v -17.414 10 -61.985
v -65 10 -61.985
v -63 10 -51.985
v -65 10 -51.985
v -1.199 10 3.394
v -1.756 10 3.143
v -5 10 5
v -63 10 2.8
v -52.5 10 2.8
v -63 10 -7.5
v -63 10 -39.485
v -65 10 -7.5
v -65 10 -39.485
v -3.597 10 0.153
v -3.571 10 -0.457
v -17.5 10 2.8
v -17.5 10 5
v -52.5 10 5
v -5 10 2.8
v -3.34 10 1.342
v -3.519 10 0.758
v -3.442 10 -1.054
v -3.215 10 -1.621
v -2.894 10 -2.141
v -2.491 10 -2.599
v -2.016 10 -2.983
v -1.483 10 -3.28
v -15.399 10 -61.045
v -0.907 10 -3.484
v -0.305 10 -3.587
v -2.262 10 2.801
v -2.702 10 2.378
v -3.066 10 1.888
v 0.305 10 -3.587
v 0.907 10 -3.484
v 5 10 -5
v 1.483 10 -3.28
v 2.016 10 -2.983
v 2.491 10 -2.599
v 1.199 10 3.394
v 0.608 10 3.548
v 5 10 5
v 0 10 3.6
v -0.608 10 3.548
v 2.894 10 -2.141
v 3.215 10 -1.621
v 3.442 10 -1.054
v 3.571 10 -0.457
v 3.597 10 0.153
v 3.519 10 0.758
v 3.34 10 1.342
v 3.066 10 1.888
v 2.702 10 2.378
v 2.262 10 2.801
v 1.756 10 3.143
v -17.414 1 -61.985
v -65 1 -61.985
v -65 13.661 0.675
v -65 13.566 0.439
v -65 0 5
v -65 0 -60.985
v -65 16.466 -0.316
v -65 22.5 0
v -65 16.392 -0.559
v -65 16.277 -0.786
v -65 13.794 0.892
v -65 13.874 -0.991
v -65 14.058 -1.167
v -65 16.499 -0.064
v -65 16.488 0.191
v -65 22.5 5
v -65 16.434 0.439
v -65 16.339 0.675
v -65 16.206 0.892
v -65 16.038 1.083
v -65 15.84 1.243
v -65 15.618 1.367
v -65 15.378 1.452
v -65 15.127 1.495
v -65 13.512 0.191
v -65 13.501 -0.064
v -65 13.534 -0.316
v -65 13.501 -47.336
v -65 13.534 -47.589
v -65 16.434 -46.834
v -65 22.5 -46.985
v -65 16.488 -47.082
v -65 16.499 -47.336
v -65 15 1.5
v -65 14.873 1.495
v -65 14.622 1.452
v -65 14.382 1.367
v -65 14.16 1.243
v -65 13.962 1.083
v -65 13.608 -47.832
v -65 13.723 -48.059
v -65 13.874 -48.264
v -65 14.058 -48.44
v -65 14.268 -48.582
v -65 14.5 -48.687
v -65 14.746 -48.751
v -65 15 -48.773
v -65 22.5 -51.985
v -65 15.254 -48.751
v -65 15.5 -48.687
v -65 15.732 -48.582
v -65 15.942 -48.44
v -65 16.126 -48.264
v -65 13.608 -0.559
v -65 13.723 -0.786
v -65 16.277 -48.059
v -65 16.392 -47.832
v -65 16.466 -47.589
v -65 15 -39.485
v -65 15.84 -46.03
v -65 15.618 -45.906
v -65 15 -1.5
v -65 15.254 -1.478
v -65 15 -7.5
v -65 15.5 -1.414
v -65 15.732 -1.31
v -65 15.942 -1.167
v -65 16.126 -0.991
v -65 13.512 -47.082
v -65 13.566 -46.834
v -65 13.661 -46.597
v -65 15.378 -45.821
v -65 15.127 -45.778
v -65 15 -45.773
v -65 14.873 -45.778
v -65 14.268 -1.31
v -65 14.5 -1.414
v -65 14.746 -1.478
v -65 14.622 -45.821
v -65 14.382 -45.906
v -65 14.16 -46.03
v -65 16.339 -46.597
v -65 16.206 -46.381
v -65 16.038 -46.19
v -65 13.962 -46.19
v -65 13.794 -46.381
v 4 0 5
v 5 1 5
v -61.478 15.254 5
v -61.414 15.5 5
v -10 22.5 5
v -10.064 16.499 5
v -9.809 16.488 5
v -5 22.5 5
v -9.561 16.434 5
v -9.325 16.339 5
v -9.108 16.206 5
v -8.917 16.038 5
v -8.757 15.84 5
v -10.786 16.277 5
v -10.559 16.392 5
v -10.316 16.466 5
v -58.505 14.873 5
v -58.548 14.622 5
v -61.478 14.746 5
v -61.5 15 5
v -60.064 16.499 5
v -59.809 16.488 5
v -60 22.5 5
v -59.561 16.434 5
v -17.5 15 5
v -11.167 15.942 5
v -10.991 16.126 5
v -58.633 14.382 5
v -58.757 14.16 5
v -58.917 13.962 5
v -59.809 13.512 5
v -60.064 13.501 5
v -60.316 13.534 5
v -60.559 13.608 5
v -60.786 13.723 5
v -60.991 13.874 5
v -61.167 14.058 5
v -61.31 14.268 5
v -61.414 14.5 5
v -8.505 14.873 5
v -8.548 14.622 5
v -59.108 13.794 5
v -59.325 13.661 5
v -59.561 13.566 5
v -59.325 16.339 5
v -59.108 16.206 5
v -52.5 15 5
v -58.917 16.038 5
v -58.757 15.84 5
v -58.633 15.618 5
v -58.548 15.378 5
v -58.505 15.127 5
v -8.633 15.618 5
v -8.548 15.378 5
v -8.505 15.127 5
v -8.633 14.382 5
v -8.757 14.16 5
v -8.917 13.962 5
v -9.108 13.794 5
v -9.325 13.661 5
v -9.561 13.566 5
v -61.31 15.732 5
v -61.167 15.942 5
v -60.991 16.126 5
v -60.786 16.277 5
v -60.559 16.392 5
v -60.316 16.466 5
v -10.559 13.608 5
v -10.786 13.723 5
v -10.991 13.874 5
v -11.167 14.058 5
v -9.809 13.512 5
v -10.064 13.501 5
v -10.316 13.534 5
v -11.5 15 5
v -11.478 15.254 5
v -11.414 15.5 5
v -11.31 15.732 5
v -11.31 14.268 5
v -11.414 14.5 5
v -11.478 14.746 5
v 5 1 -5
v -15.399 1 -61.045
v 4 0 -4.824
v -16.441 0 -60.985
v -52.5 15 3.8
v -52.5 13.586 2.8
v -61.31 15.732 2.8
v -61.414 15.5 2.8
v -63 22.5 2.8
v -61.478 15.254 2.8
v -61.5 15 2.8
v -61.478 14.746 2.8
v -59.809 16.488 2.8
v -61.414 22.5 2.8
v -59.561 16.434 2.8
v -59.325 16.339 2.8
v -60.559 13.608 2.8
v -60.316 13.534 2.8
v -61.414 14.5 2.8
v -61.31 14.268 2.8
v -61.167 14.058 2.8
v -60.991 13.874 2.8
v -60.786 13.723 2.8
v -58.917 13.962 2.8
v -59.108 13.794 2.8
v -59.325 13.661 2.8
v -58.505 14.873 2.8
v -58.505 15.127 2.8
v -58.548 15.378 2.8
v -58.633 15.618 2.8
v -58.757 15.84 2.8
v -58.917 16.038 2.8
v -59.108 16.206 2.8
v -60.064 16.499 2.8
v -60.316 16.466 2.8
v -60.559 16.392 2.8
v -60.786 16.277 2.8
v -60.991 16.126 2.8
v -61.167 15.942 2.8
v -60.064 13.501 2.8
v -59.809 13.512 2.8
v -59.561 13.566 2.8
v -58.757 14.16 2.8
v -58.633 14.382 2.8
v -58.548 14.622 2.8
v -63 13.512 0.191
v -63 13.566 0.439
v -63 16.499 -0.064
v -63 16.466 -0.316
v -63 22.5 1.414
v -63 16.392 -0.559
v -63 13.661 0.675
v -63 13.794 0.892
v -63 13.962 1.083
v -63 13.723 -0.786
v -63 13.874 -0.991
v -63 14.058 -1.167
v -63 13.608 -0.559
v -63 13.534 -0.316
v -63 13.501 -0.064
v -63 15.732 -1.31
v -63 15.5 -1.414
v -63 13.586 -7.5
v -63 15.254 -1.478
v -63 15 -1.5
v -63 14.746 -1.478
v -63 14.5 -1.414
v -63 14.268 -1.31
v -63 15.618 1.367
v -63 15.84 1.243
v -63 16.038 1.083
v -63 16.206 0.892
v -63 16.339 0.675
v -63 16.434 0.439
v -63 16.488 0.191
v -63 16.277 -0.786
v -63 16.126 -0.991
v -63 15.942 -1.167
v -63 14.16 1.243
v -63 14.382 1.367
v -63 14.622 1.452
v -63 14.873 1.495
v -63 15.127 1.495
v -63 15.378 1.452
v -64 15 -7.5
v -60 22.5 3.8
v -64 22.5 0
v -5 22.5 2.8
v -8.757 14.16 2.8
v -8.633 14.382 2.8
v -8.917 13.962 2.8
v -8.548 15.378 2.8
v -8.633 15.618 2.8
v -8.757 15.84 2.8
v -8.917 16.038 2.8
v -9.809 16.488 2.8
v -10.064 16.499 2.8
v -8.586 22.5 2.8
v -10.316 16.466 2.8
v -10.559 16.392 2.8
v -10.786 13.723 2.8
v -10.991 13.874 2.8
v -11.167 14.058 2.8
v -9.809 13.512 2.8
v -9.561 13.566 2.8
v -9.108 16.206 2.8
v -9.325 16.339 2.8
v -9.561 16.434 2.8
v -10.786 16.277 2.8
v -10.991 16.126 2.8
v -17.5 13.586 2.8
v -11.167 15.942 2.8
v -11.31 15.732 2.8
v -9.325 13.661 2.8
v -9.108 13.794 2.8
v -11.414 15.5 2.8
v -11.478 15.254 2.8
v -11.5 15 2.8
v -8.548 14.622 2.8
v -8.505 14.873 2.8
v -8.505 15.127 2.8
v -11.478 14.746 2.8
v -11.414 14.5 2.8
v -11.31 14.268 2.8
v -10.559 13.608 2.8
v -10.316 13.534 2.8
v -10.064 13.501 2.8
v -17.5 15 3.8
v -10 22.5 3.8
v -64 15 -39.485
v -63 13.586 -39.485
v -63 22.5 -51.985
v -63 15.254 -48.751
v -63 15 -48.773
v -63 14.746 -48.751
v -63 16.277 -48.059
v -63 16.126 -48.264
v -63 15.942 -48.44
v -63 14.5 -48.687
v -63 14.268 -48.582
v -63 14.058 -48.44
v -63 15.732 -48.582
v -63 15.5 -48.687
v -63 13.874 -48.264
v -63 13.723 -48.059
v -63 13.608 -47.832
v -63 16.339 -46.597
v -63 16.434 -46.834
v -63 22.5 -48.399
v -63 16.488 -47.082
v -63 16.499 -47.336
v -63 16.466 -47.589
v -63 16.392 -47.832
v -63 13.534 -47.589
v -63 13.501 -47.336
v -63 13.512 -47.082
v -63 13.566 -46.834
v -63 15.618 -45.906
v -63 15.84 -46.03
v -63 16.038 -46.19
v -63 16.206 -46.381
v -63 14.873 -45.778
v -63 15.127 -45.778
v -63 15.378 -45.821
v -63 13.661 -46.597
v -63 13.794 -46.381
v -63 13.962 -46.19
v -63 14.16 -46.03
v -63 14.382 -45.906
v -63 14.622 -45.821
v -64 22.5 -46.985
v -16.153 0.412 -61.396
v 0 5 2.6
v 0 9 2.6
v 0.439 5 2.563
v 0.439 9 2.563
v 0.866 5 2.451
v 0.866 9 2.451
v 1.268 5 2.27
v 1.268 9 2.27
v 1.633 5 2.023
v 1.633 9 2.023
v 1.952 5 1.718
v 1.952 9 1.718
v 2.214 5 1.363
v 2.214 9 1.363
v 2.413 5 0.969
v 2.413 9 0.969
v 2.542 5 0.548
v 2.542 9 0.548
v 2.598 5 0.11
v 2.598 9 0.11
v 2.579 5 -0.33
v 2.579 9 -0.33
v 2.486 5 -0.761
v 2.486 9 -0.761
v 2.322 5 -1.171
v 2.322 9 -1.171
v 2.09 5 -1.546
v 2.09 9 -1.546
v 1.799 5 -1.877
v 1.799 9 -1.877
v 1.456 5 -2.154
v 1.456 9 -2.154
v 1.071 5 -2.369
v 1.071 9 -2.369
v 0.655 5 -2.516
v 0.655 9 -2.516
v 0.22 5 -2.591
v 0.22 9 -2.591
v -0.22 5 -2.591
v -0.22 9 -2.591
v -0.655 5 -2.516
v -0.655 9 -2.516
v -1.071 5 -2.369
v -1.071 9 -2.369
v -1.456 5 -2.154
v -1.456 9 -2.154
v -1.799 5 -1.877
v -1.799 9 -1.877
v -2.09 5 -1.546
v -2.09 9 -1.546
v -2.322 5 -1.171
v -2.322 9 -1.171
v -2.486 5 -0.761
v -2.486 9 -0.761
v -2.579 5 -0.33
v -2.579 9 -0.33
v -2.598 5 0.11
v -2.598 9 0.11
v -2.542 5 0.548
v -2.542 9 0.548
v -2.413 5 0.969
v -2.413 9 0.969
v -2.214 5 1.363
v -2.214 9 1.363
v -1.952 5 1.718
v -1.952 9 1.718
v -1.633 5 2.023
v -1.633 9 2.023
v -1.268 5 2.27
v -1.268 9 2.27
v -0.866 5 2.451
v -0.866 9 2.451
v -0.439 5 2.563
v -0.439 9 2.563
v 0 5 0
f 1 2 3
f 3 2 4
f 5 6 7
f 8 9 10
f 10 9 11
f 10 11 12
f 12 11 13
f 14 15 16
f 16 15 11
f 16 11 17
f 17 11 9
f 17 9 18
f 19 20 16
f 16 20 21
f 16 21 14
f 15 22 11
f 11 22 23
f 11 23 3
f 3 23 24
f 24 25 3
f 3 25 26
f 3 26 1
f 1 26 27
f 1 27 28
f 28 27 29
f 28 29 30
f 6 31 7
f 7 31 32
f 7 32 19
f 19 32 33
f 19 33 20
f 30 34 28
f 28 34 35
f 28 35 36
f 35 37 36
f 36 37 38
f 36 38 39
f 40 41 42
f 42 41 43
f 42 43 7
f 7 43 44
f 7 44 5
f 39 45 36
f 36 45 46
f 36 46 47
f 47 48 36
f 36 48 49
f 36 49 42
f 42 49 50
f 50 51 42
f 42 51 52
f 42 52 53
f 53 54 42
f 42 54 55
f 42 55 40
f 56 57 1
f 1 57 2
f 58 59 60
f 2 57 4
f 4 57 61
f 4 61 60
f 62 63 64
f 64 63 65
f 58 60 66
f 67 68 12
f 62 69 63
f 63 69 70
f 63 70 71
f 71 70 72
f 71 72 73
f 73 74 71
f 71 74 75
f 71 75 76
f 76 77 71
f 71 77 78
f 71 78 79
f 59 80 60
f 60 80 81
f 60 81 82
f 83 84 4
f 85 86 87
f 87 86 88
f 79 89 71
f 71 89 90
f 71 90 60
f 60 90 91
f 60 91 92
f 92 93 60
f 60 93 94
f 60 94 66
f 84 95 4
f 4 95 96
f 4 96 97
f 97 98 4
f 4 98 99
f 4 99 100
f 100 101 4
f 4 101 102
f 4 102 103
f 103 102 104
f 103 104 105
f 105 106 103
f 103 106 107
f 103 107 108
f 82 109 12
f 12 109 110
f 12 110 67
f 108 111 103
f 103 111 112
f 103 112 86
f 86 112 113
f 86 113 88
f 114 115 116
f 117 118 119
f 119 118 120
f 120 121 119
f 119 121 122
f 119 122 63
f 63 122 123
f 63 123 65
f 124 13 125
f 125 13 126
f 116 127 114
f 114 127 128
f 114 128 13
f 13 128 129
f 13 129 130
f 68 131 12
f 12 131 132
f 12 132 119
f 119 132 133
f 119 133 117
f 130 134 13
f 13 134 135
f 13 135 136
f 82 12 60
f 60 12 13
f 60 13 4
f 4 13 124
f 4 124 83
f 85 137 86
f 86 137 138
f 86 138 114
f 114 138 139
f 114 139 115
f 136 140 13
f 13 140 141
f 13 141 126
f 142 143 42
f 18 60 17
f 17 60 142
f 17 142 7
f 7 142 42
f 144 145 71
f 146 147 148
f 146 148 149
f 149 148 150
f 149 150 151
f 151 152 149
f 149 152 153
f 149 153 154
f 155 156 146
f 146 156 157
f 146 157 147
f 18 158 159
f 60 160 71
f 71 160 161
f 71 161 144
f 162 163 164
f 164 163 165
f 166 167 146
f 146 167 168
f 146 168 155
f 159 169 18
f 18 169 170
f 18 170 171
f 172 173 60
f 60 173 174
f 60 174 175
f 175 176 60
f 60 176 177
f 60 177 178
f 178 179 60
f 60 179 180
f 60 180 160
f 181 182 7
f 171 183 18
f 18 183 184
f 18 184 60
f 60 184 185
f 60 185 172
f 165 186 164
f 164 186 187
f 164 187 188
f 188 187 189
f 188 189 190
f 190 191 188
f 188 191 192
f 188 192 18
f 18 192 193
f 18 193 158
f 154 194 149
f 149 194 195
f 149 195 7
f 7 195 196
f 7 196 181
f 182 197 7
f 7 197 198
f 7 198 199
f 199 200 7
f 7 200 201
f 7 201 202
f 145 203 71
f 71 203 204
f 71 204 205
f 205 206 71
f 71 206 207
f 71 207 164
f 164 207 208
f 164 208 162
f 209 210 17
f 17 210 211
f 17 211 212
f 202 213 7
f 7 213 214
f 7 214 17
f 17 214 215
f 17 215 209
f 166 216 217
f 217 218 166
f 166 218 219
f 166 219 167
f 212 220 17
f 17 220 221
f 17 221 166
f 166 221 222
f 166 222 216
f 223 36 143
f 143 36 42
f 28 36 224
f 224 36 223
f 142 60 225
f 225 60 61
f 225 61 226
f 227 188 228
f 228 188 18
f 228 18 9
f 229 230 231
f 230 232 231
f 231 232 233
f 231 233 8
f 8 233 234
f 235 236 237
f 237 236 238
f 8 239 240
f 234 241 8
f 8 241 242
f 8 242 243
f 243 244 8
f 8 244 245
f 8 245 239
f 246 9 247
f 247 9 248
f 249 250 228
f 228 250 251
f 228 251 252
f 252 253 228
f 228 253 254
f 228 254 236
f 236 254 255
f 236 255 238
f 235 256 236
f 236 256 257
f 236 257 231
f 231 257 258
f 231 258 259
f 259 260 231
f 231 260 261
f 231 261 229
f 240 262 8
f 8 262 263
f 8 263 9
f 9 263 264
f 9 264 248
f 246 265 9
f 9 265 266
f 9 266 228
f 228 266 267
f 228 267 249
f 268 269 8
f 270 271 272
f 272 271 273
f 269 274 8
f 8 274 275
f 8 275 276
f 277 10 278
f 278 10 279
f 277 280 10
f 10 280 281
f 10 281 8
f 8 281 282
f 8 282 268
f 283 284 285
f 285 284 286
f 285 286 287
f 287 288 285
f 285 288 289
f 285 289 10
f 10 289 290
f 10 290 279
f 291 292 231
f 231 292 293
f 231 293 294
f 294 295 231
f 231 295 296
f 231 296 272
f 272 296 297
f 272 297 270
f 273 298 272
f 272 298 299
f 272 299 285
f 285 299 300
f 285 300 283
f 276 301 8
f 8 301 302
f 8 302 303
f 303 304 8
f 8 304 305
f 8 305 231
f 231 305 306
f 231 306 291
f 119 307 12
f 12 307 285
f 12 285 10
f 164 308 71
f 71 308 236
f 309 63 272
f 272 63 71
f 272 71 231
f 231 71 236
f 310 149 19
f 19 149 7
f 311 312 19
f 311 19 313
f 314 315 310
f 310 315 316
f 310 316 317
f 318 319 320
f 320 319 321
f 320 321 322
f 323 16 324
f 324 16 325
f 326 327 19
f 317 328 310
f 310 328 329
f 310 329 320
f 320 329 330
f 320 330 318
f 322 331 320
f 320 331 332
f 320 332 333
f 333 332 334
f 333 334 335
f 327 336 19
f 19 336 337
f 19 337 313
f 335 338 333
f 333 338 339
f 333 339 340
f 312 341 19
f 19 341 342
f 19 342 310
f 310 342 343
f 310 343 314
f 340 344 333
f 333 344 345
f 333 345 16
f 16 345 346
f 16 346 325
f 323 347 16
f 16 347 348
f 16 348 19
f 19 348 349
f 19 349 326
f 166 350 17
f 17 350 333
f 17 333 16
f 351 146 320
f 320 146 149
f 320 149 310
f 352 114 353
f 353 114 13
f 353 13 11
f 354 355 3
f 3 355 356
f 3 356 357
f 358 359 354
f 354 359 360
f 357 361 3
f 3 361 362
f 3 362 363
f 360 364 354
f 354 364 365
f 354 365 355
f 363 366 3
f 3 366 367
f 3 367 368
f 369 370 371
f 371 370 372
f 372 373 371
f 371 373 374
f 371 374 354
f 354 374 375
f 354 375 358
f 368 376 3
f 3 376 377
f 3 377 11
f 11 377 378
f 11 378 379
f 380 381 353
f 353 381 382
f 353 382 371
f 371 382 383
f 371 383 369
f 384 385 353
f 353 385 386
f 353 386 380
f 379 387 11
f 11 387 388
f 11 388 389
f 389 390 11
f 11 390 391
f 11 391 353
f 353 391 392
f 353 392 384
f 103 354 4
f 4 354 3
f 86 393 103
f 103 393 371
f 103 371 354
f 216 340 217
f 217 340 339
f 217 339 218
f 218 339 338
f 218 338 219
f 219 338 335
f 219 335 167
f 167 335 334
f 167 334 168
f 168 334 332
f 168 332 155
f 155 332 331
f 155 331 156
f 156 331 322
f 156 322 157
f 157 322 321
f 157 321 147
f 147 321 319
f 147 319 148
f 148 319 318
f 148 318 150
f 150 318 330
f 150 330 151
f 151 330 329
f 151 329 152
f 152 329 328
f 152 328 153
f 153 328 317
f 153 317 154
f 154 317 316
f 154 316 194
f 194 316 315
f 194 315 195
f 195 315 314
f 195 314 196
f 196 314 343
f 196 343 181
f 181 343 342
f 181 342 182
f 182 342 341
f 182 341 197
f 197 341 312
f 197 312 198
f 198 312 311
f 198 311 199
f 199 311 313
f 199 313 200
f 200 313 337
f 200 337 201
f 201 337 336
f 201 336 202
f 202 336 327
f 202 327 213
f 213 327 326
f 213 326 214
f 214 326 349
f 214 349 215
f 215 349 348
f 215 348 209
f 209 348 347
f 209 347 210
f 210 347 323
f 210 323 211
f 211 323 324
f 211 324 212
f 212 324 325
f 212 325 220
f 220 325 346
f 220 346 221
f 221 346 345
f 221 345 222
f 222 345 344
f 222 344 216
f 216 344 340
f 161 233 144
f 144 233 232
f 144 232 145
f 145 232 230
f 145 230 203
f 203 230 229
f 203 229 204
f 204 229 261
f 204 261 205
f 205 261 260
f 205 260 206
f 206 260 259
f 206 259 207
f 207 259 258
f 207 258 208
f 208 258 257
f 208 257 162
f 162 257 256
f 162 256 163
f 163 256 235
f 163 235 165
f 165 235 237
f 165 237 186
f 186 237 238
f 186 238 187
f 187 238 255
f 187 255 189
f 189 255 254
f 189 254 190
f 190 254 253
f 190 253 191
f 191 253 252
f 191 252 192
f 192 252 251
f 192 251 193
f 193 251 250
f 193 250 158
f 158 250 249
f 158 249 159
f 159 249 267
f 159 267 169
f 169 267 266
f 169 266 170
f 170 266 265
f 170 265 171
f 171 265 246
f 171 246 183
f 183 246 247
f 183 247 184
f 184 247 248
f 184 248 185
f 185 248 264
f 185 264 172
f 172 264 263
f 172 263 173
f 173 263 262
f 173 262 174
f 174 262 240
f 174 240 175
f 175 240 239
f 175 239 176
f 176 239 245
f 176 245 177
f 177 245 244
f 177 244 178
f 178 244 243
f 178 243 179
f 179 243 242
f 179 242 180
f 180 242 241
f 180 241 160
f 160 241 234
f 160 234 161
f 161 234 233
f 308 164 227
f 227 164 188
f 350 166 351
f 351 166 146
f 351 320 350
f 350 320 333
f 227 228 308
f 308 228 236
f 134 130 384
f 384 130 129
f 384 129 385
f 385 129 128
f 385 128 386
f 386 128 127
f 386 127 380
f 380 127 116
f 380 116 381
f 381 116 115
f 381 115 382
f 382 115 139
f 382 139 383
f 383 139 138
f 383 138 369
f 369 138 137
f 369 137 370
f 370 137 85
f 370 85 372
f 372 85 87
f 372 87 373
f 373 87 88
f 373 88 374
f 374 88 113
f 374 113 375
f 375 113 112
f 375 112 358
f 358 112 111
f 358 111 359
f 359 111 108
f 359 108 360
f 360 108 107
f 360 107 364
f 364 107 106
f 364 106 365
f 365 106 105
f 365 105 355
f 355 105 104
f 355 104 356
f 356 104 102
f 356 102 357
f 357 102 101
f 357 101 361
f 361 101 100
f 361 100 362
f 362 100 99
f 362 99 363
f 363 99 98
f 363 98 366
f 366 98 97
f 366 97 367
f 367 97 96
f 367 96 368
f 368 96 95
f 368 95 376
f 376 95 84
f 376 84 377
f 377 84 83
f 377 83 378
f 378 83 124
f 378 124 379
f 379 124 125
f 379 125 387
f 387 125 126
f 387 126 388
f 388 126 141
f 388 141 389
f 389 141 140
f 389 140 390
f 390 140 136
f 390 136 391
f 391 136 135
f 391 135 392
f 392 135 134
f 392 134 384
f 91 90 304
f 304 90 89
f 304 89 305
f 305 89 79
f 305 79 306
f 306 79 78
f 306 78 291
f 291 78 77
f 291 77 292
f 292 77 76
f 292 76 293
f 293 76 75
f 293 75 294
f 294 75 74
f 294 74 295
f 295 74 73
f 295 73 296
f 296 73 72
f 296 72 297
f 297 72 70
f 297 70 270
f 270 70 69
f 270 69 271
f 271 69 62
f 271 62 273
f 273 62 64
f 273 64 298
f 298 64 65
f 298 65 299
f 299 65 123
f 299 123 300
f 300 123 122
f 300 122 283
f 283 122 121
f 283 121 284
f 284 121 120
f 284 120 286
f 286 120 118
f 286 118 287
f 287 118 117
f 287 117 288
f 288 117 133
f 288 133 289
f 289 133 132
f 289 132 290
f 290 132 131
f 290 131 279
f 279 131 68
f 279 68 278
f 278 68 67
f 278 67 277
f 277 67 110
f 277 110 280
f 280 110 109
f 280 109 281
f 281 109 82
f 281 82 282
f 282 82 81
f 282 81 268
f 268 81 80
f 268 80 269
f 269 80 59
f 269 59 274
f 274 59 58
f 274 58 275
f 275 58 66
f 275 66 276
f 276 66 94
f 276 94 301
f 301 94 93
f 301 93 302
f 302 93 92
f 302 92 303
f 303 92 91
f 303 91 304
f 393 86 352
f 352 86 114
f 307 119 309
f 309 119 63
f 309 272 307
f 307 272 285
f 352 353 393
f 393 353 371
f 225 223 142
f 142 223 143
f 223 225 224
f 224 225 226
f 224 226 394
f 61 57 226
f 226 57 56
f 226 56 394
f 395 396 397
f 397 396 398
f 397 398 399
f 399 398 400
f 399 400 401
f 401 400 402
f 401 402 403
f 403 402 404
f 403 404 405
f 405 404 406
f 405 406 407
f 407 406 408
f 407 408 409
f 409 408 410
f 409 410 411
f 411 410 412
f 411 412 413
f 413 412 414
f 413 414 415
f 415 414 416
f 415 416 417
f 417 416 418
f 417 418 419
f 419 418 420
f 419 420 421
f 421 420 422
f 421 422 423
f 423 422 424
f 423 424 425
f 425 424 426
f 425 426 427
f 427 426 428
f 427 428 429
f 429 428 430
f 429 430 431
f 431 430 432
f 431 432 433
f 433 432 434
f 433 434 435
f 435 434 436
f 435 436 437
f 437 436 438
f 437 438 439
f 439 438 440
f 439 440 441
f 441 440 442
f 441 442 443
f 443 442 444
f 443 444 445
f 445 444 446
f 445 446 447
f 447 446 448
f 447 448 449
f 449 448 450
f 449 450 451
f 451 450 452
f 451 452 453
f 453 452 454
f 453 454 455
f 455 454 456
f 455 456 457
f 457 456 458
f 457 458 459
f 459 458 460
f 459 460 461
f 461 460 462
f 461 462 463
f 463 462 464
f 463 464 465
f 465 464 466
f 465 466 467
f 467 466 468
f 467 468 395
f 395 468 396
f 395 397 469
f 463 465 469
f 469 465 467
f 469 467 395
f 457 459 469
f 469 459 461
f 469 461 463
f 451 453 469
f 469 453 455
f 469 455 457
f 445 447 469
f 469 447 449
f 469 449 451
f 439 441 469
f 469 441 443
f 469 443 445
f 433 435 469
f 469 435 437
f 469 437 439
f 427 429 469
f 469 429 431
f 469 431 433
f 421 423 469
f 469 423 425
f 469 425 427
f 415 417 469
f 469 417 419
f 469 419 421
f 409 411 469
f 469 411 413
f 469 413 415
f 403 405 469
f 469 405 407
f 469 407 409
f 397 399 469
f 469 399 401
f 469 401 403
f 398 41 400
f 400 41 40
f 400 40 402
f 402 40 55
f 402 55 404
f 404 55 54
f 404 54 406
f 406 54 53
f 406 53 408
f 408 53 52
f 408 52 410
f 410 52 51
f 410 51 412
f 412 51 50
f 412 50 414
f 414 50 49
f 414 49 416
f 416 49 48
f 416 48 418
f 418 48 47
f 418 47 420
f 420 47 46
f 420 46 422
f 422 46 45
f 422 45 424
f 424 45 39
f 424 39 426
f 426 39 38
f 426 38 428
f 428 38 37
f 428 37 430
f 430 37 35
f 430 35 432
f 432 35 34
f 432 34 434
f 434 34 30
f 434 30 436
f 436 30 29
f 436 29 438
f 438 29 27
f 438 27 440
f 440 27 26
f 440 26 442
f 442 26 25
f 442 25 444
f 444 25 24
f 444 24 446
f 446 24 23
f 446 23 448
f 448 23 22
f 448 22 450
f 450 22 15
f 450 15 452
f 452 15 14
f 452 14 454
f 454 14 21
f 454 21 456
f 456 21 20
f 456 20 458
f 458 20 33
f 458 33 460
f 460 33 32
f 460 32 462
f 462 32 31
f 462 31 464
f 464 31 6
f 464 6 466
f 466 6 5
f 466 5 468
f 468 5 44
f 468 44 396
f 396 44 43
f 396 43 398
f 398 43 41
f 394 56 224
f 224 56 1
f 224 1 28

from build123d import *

# Parameters (mm, degrees)
SKETCH1_W           = 10.000000000000004
SKETCH1_H           = 10
SKETCH1_W_2         = 10
BOSS_EXTRUDE1_DEPTH = 10
SKETCH2_W           = 1.999999999999993
SKETCH2_H           = 10.29963091051744
SKETCH2_H_2         = 12.500000000000014
BOSS_EXTRUDE2_DEPTH = 12.5
SKETCH3_R           = 1.5000000000000002
SKETCH3_R_2         = 1.5000000000000042
CUT_EXTRUDE1_DEPTH  = 2.200369089
CHAMFER1_SIZE       = 7.5
CHAMFER2_SIZE       = 1
SKETCH4_R           = 1.4999999999999998
SKETCH4_R_2         = 1.5000000000000042
CUT_EXTRUDE2_DEPTH  = 2
CHAMFER3_SIZE       = 7.5
CHAMFER4_SIZE       = 1
CHAMFER5_SIZE       = 1
SKETCH5_R           = 2.6000000000000005
CUT_EXTRUDE3_DEPTH  = 5
CHAMFER6_SIZE       = 1
CHAMFER7_SIZE       = 1
CHAMFER7_SIZE2      = 1.6731571851015008


with BuildPart() as part:
    # Sketch1 → Boss-Extrude1 (new body)
    with BuildSketch(Plane(origin=(0, 0, 0), x_dir=(1, 0, 0), z_dir=(0, 1, 0))):
        Polygon((-12.101007166283637, 51.98463103929535), (-15.740709508945708, 61.984631039295344), (-22.10100716628364, 61.984631039295344), (-22.10100716628364, 51.984631039295344), (-5, 5.000000000000001), (5, 5.000000000000001), align=None)
        with Locations((-27.101007166283644, 56.98463103929535)):
            Rectangle(SKETCH1_W, SKETCH1_H)
        Polygon((-65, 61.984631039295344), (-32.101007166283644, 61.984631039295344), (-32.101007166283644, 51.984631039295344), (-22.10100716628364, 51.984631039295344), (-5, 5.000000000000001), (-5, -5), (-65, -5.000000000000009), align=None)
        Rectangle(SKETCH1_W_2, SKETCH1_H)
    extrude(amount=BOSS_EXTRUDE1_DEPTH)

    # Sketch2 → Boss-Extrude2 (add)
    with BuildSketch(Plane(origin=(0, 10, 0), x_dir=(1, 0, 0), z_dir=(0, 1, 0))):
        with Locations((-64, 2.3501845447412815)):
            Rectangle(SKETCH2_W, SKETCH2_H)
        Polygon((-65, -5.000000000000009), (-63, -5.000000000000007), (-63, -2.799630910517438), (-65, -2.799630910517438), align=None)
        Polygon((-63, -5.000000000000007), (-52.50000000000001, -5), (-52.50000000000001, -2.799630910517438), (-63, -2.799630910517438), align=None)
        Polygon((-17.5, -2.799630910517445), (-17.5, -5), (-5, -5), (-5.000000000000001, -2.799630910517445), align=None)
        with Locations((-64, 45.734631039295344)):
            Rectangle(SKETCH2_W, SKETCH2_H_2)
    extrude(amount=BOSS_EXTRUDE2_DEPTH)

    # Sketch3 → Cut-Extrude1 (cut)
    with BuildSketch(Plane(origin=(0, 0, 2.799630910517438), x_dir=(-1, 0, 0), z_dir=(0, 0, -1))):
        with Locations((10.000000000000002, 15)):
            Circle(SKETCH3_R)
        with Locations((60.00000000000001, 15.000000000000002)):
            Circle(SKETCH3_R_2)
    extrude(amount=-CUT_EXTRUDE1_DEPTH, mode=Mode.SUBTRACT)

    # Chamfer1
    chamfer1_edges = [part.edges().sort_by_distance(p)[0] for p in [
        (-52.50000000000001, 22.5, 3.899815455258719),
        (-17.5, 22.5, 3.8998154552587225),
    ]]
    chamfer(chamfer1_edges, length=CHAMFER1_SIZE)

    # Chamfer2
    chamfer2_edges = [part.edges().sort_by_distance(p)[0] for p in [
        (-56.25000000000001, 18.75, 2.799630910517438),
        (-13.75, 18.75, 2.799630910517445),
    ]]
    chamfer(chamfer2_edges, length=CHAMFER2_SIZE)

    # Sketch4 → Cut-Extrude2 (cut)
    with BuildSketch(Plane(origin=(-63, 0, 0), x_dir=(0, 0, -1), z_dir=(1, 0, 0))):
        with Locations((0, 15)):
            Circle(SKETCH4_R)
        with Locations((47.27277690959397, 15)):
            Circle(SKETCH4_R_2)
    extrude(amount=-CUT_EXTRUDE2_DEPTH, mode=Mode.SUBTRACT)

    # Chamfer3
    chamfer3_edges = [part.edges().sort_by_distance(p)[0] for p in [
        (-64, 22.5, -7.500000000000001),
        (-64, 22.5, -39.48463103929534),
    ]]
    chamfer(chamfer3_edges, length=CHAMFER3_SIZE)

    # Chamfer4
    chamfer4_edges = [part.edges().sort_by_distance(p)[0] for p in [
        (-63, 18.750000000000004, -43.23463103929534),
        (-63, 18.75, -3.750000000000001),
    ]]
    chamfer(chamfer4_edges, length=CHAMFER4_SIZE)

    # Chamfer5
    chamfer5_edges = [part.edges().sort_by_distance(p)[0] for p in [
        (-5.370354754472853, 0, -33.492315519647676),
        (5, 0, 0),
        (-40.37035475447286, 0, -61.984631039295344),
    ]]
    chamfer(chamfer5_edges, length=CHAMFER5_SIZE)

    # Sketch5 → Cut-Extrude3 (cut)
    with BuildSketch(Plane(origin=(0, 10, 0), x_dir=(1, 0, 0), z_dir=(0, 1, 0))):
        with Locations(Location((0, -4.3e-16, 0), (0, 0, 270))):
            Circle(SKETCH5_R)
    extrude(amount=-CUT_EXTRUDE3_DEPTH, mode=Mode.SUBTRACT)

    # Chamfer6
    chamfer6_edges = [part.edges().sort_by_distance(p)[0] for p in [
        (8e-16, 10, -2.6),
    ]]
    chamfer(chamfer6_edges, length=CHAMFER6_SIZE)

    # Chamfer7
    chamfer7_edges = [part.edges().sort_by_distance(p)[0] for p in [
        (-15.740709508945708, 5.5, -61.984631039295344),
    ]]
    chamfer7_side = [part.faces().sort_by_distance(p)[0] for p in [
        (-5.370354754472848, 5.5, -33.49231551964767),
    ]]
    chamfer(chamfer7_edges, length=CHAMFER7_SIZE, length2=CHAMFER7_SIZE2, reference=chamfer7_side[0])


solid = part.part
